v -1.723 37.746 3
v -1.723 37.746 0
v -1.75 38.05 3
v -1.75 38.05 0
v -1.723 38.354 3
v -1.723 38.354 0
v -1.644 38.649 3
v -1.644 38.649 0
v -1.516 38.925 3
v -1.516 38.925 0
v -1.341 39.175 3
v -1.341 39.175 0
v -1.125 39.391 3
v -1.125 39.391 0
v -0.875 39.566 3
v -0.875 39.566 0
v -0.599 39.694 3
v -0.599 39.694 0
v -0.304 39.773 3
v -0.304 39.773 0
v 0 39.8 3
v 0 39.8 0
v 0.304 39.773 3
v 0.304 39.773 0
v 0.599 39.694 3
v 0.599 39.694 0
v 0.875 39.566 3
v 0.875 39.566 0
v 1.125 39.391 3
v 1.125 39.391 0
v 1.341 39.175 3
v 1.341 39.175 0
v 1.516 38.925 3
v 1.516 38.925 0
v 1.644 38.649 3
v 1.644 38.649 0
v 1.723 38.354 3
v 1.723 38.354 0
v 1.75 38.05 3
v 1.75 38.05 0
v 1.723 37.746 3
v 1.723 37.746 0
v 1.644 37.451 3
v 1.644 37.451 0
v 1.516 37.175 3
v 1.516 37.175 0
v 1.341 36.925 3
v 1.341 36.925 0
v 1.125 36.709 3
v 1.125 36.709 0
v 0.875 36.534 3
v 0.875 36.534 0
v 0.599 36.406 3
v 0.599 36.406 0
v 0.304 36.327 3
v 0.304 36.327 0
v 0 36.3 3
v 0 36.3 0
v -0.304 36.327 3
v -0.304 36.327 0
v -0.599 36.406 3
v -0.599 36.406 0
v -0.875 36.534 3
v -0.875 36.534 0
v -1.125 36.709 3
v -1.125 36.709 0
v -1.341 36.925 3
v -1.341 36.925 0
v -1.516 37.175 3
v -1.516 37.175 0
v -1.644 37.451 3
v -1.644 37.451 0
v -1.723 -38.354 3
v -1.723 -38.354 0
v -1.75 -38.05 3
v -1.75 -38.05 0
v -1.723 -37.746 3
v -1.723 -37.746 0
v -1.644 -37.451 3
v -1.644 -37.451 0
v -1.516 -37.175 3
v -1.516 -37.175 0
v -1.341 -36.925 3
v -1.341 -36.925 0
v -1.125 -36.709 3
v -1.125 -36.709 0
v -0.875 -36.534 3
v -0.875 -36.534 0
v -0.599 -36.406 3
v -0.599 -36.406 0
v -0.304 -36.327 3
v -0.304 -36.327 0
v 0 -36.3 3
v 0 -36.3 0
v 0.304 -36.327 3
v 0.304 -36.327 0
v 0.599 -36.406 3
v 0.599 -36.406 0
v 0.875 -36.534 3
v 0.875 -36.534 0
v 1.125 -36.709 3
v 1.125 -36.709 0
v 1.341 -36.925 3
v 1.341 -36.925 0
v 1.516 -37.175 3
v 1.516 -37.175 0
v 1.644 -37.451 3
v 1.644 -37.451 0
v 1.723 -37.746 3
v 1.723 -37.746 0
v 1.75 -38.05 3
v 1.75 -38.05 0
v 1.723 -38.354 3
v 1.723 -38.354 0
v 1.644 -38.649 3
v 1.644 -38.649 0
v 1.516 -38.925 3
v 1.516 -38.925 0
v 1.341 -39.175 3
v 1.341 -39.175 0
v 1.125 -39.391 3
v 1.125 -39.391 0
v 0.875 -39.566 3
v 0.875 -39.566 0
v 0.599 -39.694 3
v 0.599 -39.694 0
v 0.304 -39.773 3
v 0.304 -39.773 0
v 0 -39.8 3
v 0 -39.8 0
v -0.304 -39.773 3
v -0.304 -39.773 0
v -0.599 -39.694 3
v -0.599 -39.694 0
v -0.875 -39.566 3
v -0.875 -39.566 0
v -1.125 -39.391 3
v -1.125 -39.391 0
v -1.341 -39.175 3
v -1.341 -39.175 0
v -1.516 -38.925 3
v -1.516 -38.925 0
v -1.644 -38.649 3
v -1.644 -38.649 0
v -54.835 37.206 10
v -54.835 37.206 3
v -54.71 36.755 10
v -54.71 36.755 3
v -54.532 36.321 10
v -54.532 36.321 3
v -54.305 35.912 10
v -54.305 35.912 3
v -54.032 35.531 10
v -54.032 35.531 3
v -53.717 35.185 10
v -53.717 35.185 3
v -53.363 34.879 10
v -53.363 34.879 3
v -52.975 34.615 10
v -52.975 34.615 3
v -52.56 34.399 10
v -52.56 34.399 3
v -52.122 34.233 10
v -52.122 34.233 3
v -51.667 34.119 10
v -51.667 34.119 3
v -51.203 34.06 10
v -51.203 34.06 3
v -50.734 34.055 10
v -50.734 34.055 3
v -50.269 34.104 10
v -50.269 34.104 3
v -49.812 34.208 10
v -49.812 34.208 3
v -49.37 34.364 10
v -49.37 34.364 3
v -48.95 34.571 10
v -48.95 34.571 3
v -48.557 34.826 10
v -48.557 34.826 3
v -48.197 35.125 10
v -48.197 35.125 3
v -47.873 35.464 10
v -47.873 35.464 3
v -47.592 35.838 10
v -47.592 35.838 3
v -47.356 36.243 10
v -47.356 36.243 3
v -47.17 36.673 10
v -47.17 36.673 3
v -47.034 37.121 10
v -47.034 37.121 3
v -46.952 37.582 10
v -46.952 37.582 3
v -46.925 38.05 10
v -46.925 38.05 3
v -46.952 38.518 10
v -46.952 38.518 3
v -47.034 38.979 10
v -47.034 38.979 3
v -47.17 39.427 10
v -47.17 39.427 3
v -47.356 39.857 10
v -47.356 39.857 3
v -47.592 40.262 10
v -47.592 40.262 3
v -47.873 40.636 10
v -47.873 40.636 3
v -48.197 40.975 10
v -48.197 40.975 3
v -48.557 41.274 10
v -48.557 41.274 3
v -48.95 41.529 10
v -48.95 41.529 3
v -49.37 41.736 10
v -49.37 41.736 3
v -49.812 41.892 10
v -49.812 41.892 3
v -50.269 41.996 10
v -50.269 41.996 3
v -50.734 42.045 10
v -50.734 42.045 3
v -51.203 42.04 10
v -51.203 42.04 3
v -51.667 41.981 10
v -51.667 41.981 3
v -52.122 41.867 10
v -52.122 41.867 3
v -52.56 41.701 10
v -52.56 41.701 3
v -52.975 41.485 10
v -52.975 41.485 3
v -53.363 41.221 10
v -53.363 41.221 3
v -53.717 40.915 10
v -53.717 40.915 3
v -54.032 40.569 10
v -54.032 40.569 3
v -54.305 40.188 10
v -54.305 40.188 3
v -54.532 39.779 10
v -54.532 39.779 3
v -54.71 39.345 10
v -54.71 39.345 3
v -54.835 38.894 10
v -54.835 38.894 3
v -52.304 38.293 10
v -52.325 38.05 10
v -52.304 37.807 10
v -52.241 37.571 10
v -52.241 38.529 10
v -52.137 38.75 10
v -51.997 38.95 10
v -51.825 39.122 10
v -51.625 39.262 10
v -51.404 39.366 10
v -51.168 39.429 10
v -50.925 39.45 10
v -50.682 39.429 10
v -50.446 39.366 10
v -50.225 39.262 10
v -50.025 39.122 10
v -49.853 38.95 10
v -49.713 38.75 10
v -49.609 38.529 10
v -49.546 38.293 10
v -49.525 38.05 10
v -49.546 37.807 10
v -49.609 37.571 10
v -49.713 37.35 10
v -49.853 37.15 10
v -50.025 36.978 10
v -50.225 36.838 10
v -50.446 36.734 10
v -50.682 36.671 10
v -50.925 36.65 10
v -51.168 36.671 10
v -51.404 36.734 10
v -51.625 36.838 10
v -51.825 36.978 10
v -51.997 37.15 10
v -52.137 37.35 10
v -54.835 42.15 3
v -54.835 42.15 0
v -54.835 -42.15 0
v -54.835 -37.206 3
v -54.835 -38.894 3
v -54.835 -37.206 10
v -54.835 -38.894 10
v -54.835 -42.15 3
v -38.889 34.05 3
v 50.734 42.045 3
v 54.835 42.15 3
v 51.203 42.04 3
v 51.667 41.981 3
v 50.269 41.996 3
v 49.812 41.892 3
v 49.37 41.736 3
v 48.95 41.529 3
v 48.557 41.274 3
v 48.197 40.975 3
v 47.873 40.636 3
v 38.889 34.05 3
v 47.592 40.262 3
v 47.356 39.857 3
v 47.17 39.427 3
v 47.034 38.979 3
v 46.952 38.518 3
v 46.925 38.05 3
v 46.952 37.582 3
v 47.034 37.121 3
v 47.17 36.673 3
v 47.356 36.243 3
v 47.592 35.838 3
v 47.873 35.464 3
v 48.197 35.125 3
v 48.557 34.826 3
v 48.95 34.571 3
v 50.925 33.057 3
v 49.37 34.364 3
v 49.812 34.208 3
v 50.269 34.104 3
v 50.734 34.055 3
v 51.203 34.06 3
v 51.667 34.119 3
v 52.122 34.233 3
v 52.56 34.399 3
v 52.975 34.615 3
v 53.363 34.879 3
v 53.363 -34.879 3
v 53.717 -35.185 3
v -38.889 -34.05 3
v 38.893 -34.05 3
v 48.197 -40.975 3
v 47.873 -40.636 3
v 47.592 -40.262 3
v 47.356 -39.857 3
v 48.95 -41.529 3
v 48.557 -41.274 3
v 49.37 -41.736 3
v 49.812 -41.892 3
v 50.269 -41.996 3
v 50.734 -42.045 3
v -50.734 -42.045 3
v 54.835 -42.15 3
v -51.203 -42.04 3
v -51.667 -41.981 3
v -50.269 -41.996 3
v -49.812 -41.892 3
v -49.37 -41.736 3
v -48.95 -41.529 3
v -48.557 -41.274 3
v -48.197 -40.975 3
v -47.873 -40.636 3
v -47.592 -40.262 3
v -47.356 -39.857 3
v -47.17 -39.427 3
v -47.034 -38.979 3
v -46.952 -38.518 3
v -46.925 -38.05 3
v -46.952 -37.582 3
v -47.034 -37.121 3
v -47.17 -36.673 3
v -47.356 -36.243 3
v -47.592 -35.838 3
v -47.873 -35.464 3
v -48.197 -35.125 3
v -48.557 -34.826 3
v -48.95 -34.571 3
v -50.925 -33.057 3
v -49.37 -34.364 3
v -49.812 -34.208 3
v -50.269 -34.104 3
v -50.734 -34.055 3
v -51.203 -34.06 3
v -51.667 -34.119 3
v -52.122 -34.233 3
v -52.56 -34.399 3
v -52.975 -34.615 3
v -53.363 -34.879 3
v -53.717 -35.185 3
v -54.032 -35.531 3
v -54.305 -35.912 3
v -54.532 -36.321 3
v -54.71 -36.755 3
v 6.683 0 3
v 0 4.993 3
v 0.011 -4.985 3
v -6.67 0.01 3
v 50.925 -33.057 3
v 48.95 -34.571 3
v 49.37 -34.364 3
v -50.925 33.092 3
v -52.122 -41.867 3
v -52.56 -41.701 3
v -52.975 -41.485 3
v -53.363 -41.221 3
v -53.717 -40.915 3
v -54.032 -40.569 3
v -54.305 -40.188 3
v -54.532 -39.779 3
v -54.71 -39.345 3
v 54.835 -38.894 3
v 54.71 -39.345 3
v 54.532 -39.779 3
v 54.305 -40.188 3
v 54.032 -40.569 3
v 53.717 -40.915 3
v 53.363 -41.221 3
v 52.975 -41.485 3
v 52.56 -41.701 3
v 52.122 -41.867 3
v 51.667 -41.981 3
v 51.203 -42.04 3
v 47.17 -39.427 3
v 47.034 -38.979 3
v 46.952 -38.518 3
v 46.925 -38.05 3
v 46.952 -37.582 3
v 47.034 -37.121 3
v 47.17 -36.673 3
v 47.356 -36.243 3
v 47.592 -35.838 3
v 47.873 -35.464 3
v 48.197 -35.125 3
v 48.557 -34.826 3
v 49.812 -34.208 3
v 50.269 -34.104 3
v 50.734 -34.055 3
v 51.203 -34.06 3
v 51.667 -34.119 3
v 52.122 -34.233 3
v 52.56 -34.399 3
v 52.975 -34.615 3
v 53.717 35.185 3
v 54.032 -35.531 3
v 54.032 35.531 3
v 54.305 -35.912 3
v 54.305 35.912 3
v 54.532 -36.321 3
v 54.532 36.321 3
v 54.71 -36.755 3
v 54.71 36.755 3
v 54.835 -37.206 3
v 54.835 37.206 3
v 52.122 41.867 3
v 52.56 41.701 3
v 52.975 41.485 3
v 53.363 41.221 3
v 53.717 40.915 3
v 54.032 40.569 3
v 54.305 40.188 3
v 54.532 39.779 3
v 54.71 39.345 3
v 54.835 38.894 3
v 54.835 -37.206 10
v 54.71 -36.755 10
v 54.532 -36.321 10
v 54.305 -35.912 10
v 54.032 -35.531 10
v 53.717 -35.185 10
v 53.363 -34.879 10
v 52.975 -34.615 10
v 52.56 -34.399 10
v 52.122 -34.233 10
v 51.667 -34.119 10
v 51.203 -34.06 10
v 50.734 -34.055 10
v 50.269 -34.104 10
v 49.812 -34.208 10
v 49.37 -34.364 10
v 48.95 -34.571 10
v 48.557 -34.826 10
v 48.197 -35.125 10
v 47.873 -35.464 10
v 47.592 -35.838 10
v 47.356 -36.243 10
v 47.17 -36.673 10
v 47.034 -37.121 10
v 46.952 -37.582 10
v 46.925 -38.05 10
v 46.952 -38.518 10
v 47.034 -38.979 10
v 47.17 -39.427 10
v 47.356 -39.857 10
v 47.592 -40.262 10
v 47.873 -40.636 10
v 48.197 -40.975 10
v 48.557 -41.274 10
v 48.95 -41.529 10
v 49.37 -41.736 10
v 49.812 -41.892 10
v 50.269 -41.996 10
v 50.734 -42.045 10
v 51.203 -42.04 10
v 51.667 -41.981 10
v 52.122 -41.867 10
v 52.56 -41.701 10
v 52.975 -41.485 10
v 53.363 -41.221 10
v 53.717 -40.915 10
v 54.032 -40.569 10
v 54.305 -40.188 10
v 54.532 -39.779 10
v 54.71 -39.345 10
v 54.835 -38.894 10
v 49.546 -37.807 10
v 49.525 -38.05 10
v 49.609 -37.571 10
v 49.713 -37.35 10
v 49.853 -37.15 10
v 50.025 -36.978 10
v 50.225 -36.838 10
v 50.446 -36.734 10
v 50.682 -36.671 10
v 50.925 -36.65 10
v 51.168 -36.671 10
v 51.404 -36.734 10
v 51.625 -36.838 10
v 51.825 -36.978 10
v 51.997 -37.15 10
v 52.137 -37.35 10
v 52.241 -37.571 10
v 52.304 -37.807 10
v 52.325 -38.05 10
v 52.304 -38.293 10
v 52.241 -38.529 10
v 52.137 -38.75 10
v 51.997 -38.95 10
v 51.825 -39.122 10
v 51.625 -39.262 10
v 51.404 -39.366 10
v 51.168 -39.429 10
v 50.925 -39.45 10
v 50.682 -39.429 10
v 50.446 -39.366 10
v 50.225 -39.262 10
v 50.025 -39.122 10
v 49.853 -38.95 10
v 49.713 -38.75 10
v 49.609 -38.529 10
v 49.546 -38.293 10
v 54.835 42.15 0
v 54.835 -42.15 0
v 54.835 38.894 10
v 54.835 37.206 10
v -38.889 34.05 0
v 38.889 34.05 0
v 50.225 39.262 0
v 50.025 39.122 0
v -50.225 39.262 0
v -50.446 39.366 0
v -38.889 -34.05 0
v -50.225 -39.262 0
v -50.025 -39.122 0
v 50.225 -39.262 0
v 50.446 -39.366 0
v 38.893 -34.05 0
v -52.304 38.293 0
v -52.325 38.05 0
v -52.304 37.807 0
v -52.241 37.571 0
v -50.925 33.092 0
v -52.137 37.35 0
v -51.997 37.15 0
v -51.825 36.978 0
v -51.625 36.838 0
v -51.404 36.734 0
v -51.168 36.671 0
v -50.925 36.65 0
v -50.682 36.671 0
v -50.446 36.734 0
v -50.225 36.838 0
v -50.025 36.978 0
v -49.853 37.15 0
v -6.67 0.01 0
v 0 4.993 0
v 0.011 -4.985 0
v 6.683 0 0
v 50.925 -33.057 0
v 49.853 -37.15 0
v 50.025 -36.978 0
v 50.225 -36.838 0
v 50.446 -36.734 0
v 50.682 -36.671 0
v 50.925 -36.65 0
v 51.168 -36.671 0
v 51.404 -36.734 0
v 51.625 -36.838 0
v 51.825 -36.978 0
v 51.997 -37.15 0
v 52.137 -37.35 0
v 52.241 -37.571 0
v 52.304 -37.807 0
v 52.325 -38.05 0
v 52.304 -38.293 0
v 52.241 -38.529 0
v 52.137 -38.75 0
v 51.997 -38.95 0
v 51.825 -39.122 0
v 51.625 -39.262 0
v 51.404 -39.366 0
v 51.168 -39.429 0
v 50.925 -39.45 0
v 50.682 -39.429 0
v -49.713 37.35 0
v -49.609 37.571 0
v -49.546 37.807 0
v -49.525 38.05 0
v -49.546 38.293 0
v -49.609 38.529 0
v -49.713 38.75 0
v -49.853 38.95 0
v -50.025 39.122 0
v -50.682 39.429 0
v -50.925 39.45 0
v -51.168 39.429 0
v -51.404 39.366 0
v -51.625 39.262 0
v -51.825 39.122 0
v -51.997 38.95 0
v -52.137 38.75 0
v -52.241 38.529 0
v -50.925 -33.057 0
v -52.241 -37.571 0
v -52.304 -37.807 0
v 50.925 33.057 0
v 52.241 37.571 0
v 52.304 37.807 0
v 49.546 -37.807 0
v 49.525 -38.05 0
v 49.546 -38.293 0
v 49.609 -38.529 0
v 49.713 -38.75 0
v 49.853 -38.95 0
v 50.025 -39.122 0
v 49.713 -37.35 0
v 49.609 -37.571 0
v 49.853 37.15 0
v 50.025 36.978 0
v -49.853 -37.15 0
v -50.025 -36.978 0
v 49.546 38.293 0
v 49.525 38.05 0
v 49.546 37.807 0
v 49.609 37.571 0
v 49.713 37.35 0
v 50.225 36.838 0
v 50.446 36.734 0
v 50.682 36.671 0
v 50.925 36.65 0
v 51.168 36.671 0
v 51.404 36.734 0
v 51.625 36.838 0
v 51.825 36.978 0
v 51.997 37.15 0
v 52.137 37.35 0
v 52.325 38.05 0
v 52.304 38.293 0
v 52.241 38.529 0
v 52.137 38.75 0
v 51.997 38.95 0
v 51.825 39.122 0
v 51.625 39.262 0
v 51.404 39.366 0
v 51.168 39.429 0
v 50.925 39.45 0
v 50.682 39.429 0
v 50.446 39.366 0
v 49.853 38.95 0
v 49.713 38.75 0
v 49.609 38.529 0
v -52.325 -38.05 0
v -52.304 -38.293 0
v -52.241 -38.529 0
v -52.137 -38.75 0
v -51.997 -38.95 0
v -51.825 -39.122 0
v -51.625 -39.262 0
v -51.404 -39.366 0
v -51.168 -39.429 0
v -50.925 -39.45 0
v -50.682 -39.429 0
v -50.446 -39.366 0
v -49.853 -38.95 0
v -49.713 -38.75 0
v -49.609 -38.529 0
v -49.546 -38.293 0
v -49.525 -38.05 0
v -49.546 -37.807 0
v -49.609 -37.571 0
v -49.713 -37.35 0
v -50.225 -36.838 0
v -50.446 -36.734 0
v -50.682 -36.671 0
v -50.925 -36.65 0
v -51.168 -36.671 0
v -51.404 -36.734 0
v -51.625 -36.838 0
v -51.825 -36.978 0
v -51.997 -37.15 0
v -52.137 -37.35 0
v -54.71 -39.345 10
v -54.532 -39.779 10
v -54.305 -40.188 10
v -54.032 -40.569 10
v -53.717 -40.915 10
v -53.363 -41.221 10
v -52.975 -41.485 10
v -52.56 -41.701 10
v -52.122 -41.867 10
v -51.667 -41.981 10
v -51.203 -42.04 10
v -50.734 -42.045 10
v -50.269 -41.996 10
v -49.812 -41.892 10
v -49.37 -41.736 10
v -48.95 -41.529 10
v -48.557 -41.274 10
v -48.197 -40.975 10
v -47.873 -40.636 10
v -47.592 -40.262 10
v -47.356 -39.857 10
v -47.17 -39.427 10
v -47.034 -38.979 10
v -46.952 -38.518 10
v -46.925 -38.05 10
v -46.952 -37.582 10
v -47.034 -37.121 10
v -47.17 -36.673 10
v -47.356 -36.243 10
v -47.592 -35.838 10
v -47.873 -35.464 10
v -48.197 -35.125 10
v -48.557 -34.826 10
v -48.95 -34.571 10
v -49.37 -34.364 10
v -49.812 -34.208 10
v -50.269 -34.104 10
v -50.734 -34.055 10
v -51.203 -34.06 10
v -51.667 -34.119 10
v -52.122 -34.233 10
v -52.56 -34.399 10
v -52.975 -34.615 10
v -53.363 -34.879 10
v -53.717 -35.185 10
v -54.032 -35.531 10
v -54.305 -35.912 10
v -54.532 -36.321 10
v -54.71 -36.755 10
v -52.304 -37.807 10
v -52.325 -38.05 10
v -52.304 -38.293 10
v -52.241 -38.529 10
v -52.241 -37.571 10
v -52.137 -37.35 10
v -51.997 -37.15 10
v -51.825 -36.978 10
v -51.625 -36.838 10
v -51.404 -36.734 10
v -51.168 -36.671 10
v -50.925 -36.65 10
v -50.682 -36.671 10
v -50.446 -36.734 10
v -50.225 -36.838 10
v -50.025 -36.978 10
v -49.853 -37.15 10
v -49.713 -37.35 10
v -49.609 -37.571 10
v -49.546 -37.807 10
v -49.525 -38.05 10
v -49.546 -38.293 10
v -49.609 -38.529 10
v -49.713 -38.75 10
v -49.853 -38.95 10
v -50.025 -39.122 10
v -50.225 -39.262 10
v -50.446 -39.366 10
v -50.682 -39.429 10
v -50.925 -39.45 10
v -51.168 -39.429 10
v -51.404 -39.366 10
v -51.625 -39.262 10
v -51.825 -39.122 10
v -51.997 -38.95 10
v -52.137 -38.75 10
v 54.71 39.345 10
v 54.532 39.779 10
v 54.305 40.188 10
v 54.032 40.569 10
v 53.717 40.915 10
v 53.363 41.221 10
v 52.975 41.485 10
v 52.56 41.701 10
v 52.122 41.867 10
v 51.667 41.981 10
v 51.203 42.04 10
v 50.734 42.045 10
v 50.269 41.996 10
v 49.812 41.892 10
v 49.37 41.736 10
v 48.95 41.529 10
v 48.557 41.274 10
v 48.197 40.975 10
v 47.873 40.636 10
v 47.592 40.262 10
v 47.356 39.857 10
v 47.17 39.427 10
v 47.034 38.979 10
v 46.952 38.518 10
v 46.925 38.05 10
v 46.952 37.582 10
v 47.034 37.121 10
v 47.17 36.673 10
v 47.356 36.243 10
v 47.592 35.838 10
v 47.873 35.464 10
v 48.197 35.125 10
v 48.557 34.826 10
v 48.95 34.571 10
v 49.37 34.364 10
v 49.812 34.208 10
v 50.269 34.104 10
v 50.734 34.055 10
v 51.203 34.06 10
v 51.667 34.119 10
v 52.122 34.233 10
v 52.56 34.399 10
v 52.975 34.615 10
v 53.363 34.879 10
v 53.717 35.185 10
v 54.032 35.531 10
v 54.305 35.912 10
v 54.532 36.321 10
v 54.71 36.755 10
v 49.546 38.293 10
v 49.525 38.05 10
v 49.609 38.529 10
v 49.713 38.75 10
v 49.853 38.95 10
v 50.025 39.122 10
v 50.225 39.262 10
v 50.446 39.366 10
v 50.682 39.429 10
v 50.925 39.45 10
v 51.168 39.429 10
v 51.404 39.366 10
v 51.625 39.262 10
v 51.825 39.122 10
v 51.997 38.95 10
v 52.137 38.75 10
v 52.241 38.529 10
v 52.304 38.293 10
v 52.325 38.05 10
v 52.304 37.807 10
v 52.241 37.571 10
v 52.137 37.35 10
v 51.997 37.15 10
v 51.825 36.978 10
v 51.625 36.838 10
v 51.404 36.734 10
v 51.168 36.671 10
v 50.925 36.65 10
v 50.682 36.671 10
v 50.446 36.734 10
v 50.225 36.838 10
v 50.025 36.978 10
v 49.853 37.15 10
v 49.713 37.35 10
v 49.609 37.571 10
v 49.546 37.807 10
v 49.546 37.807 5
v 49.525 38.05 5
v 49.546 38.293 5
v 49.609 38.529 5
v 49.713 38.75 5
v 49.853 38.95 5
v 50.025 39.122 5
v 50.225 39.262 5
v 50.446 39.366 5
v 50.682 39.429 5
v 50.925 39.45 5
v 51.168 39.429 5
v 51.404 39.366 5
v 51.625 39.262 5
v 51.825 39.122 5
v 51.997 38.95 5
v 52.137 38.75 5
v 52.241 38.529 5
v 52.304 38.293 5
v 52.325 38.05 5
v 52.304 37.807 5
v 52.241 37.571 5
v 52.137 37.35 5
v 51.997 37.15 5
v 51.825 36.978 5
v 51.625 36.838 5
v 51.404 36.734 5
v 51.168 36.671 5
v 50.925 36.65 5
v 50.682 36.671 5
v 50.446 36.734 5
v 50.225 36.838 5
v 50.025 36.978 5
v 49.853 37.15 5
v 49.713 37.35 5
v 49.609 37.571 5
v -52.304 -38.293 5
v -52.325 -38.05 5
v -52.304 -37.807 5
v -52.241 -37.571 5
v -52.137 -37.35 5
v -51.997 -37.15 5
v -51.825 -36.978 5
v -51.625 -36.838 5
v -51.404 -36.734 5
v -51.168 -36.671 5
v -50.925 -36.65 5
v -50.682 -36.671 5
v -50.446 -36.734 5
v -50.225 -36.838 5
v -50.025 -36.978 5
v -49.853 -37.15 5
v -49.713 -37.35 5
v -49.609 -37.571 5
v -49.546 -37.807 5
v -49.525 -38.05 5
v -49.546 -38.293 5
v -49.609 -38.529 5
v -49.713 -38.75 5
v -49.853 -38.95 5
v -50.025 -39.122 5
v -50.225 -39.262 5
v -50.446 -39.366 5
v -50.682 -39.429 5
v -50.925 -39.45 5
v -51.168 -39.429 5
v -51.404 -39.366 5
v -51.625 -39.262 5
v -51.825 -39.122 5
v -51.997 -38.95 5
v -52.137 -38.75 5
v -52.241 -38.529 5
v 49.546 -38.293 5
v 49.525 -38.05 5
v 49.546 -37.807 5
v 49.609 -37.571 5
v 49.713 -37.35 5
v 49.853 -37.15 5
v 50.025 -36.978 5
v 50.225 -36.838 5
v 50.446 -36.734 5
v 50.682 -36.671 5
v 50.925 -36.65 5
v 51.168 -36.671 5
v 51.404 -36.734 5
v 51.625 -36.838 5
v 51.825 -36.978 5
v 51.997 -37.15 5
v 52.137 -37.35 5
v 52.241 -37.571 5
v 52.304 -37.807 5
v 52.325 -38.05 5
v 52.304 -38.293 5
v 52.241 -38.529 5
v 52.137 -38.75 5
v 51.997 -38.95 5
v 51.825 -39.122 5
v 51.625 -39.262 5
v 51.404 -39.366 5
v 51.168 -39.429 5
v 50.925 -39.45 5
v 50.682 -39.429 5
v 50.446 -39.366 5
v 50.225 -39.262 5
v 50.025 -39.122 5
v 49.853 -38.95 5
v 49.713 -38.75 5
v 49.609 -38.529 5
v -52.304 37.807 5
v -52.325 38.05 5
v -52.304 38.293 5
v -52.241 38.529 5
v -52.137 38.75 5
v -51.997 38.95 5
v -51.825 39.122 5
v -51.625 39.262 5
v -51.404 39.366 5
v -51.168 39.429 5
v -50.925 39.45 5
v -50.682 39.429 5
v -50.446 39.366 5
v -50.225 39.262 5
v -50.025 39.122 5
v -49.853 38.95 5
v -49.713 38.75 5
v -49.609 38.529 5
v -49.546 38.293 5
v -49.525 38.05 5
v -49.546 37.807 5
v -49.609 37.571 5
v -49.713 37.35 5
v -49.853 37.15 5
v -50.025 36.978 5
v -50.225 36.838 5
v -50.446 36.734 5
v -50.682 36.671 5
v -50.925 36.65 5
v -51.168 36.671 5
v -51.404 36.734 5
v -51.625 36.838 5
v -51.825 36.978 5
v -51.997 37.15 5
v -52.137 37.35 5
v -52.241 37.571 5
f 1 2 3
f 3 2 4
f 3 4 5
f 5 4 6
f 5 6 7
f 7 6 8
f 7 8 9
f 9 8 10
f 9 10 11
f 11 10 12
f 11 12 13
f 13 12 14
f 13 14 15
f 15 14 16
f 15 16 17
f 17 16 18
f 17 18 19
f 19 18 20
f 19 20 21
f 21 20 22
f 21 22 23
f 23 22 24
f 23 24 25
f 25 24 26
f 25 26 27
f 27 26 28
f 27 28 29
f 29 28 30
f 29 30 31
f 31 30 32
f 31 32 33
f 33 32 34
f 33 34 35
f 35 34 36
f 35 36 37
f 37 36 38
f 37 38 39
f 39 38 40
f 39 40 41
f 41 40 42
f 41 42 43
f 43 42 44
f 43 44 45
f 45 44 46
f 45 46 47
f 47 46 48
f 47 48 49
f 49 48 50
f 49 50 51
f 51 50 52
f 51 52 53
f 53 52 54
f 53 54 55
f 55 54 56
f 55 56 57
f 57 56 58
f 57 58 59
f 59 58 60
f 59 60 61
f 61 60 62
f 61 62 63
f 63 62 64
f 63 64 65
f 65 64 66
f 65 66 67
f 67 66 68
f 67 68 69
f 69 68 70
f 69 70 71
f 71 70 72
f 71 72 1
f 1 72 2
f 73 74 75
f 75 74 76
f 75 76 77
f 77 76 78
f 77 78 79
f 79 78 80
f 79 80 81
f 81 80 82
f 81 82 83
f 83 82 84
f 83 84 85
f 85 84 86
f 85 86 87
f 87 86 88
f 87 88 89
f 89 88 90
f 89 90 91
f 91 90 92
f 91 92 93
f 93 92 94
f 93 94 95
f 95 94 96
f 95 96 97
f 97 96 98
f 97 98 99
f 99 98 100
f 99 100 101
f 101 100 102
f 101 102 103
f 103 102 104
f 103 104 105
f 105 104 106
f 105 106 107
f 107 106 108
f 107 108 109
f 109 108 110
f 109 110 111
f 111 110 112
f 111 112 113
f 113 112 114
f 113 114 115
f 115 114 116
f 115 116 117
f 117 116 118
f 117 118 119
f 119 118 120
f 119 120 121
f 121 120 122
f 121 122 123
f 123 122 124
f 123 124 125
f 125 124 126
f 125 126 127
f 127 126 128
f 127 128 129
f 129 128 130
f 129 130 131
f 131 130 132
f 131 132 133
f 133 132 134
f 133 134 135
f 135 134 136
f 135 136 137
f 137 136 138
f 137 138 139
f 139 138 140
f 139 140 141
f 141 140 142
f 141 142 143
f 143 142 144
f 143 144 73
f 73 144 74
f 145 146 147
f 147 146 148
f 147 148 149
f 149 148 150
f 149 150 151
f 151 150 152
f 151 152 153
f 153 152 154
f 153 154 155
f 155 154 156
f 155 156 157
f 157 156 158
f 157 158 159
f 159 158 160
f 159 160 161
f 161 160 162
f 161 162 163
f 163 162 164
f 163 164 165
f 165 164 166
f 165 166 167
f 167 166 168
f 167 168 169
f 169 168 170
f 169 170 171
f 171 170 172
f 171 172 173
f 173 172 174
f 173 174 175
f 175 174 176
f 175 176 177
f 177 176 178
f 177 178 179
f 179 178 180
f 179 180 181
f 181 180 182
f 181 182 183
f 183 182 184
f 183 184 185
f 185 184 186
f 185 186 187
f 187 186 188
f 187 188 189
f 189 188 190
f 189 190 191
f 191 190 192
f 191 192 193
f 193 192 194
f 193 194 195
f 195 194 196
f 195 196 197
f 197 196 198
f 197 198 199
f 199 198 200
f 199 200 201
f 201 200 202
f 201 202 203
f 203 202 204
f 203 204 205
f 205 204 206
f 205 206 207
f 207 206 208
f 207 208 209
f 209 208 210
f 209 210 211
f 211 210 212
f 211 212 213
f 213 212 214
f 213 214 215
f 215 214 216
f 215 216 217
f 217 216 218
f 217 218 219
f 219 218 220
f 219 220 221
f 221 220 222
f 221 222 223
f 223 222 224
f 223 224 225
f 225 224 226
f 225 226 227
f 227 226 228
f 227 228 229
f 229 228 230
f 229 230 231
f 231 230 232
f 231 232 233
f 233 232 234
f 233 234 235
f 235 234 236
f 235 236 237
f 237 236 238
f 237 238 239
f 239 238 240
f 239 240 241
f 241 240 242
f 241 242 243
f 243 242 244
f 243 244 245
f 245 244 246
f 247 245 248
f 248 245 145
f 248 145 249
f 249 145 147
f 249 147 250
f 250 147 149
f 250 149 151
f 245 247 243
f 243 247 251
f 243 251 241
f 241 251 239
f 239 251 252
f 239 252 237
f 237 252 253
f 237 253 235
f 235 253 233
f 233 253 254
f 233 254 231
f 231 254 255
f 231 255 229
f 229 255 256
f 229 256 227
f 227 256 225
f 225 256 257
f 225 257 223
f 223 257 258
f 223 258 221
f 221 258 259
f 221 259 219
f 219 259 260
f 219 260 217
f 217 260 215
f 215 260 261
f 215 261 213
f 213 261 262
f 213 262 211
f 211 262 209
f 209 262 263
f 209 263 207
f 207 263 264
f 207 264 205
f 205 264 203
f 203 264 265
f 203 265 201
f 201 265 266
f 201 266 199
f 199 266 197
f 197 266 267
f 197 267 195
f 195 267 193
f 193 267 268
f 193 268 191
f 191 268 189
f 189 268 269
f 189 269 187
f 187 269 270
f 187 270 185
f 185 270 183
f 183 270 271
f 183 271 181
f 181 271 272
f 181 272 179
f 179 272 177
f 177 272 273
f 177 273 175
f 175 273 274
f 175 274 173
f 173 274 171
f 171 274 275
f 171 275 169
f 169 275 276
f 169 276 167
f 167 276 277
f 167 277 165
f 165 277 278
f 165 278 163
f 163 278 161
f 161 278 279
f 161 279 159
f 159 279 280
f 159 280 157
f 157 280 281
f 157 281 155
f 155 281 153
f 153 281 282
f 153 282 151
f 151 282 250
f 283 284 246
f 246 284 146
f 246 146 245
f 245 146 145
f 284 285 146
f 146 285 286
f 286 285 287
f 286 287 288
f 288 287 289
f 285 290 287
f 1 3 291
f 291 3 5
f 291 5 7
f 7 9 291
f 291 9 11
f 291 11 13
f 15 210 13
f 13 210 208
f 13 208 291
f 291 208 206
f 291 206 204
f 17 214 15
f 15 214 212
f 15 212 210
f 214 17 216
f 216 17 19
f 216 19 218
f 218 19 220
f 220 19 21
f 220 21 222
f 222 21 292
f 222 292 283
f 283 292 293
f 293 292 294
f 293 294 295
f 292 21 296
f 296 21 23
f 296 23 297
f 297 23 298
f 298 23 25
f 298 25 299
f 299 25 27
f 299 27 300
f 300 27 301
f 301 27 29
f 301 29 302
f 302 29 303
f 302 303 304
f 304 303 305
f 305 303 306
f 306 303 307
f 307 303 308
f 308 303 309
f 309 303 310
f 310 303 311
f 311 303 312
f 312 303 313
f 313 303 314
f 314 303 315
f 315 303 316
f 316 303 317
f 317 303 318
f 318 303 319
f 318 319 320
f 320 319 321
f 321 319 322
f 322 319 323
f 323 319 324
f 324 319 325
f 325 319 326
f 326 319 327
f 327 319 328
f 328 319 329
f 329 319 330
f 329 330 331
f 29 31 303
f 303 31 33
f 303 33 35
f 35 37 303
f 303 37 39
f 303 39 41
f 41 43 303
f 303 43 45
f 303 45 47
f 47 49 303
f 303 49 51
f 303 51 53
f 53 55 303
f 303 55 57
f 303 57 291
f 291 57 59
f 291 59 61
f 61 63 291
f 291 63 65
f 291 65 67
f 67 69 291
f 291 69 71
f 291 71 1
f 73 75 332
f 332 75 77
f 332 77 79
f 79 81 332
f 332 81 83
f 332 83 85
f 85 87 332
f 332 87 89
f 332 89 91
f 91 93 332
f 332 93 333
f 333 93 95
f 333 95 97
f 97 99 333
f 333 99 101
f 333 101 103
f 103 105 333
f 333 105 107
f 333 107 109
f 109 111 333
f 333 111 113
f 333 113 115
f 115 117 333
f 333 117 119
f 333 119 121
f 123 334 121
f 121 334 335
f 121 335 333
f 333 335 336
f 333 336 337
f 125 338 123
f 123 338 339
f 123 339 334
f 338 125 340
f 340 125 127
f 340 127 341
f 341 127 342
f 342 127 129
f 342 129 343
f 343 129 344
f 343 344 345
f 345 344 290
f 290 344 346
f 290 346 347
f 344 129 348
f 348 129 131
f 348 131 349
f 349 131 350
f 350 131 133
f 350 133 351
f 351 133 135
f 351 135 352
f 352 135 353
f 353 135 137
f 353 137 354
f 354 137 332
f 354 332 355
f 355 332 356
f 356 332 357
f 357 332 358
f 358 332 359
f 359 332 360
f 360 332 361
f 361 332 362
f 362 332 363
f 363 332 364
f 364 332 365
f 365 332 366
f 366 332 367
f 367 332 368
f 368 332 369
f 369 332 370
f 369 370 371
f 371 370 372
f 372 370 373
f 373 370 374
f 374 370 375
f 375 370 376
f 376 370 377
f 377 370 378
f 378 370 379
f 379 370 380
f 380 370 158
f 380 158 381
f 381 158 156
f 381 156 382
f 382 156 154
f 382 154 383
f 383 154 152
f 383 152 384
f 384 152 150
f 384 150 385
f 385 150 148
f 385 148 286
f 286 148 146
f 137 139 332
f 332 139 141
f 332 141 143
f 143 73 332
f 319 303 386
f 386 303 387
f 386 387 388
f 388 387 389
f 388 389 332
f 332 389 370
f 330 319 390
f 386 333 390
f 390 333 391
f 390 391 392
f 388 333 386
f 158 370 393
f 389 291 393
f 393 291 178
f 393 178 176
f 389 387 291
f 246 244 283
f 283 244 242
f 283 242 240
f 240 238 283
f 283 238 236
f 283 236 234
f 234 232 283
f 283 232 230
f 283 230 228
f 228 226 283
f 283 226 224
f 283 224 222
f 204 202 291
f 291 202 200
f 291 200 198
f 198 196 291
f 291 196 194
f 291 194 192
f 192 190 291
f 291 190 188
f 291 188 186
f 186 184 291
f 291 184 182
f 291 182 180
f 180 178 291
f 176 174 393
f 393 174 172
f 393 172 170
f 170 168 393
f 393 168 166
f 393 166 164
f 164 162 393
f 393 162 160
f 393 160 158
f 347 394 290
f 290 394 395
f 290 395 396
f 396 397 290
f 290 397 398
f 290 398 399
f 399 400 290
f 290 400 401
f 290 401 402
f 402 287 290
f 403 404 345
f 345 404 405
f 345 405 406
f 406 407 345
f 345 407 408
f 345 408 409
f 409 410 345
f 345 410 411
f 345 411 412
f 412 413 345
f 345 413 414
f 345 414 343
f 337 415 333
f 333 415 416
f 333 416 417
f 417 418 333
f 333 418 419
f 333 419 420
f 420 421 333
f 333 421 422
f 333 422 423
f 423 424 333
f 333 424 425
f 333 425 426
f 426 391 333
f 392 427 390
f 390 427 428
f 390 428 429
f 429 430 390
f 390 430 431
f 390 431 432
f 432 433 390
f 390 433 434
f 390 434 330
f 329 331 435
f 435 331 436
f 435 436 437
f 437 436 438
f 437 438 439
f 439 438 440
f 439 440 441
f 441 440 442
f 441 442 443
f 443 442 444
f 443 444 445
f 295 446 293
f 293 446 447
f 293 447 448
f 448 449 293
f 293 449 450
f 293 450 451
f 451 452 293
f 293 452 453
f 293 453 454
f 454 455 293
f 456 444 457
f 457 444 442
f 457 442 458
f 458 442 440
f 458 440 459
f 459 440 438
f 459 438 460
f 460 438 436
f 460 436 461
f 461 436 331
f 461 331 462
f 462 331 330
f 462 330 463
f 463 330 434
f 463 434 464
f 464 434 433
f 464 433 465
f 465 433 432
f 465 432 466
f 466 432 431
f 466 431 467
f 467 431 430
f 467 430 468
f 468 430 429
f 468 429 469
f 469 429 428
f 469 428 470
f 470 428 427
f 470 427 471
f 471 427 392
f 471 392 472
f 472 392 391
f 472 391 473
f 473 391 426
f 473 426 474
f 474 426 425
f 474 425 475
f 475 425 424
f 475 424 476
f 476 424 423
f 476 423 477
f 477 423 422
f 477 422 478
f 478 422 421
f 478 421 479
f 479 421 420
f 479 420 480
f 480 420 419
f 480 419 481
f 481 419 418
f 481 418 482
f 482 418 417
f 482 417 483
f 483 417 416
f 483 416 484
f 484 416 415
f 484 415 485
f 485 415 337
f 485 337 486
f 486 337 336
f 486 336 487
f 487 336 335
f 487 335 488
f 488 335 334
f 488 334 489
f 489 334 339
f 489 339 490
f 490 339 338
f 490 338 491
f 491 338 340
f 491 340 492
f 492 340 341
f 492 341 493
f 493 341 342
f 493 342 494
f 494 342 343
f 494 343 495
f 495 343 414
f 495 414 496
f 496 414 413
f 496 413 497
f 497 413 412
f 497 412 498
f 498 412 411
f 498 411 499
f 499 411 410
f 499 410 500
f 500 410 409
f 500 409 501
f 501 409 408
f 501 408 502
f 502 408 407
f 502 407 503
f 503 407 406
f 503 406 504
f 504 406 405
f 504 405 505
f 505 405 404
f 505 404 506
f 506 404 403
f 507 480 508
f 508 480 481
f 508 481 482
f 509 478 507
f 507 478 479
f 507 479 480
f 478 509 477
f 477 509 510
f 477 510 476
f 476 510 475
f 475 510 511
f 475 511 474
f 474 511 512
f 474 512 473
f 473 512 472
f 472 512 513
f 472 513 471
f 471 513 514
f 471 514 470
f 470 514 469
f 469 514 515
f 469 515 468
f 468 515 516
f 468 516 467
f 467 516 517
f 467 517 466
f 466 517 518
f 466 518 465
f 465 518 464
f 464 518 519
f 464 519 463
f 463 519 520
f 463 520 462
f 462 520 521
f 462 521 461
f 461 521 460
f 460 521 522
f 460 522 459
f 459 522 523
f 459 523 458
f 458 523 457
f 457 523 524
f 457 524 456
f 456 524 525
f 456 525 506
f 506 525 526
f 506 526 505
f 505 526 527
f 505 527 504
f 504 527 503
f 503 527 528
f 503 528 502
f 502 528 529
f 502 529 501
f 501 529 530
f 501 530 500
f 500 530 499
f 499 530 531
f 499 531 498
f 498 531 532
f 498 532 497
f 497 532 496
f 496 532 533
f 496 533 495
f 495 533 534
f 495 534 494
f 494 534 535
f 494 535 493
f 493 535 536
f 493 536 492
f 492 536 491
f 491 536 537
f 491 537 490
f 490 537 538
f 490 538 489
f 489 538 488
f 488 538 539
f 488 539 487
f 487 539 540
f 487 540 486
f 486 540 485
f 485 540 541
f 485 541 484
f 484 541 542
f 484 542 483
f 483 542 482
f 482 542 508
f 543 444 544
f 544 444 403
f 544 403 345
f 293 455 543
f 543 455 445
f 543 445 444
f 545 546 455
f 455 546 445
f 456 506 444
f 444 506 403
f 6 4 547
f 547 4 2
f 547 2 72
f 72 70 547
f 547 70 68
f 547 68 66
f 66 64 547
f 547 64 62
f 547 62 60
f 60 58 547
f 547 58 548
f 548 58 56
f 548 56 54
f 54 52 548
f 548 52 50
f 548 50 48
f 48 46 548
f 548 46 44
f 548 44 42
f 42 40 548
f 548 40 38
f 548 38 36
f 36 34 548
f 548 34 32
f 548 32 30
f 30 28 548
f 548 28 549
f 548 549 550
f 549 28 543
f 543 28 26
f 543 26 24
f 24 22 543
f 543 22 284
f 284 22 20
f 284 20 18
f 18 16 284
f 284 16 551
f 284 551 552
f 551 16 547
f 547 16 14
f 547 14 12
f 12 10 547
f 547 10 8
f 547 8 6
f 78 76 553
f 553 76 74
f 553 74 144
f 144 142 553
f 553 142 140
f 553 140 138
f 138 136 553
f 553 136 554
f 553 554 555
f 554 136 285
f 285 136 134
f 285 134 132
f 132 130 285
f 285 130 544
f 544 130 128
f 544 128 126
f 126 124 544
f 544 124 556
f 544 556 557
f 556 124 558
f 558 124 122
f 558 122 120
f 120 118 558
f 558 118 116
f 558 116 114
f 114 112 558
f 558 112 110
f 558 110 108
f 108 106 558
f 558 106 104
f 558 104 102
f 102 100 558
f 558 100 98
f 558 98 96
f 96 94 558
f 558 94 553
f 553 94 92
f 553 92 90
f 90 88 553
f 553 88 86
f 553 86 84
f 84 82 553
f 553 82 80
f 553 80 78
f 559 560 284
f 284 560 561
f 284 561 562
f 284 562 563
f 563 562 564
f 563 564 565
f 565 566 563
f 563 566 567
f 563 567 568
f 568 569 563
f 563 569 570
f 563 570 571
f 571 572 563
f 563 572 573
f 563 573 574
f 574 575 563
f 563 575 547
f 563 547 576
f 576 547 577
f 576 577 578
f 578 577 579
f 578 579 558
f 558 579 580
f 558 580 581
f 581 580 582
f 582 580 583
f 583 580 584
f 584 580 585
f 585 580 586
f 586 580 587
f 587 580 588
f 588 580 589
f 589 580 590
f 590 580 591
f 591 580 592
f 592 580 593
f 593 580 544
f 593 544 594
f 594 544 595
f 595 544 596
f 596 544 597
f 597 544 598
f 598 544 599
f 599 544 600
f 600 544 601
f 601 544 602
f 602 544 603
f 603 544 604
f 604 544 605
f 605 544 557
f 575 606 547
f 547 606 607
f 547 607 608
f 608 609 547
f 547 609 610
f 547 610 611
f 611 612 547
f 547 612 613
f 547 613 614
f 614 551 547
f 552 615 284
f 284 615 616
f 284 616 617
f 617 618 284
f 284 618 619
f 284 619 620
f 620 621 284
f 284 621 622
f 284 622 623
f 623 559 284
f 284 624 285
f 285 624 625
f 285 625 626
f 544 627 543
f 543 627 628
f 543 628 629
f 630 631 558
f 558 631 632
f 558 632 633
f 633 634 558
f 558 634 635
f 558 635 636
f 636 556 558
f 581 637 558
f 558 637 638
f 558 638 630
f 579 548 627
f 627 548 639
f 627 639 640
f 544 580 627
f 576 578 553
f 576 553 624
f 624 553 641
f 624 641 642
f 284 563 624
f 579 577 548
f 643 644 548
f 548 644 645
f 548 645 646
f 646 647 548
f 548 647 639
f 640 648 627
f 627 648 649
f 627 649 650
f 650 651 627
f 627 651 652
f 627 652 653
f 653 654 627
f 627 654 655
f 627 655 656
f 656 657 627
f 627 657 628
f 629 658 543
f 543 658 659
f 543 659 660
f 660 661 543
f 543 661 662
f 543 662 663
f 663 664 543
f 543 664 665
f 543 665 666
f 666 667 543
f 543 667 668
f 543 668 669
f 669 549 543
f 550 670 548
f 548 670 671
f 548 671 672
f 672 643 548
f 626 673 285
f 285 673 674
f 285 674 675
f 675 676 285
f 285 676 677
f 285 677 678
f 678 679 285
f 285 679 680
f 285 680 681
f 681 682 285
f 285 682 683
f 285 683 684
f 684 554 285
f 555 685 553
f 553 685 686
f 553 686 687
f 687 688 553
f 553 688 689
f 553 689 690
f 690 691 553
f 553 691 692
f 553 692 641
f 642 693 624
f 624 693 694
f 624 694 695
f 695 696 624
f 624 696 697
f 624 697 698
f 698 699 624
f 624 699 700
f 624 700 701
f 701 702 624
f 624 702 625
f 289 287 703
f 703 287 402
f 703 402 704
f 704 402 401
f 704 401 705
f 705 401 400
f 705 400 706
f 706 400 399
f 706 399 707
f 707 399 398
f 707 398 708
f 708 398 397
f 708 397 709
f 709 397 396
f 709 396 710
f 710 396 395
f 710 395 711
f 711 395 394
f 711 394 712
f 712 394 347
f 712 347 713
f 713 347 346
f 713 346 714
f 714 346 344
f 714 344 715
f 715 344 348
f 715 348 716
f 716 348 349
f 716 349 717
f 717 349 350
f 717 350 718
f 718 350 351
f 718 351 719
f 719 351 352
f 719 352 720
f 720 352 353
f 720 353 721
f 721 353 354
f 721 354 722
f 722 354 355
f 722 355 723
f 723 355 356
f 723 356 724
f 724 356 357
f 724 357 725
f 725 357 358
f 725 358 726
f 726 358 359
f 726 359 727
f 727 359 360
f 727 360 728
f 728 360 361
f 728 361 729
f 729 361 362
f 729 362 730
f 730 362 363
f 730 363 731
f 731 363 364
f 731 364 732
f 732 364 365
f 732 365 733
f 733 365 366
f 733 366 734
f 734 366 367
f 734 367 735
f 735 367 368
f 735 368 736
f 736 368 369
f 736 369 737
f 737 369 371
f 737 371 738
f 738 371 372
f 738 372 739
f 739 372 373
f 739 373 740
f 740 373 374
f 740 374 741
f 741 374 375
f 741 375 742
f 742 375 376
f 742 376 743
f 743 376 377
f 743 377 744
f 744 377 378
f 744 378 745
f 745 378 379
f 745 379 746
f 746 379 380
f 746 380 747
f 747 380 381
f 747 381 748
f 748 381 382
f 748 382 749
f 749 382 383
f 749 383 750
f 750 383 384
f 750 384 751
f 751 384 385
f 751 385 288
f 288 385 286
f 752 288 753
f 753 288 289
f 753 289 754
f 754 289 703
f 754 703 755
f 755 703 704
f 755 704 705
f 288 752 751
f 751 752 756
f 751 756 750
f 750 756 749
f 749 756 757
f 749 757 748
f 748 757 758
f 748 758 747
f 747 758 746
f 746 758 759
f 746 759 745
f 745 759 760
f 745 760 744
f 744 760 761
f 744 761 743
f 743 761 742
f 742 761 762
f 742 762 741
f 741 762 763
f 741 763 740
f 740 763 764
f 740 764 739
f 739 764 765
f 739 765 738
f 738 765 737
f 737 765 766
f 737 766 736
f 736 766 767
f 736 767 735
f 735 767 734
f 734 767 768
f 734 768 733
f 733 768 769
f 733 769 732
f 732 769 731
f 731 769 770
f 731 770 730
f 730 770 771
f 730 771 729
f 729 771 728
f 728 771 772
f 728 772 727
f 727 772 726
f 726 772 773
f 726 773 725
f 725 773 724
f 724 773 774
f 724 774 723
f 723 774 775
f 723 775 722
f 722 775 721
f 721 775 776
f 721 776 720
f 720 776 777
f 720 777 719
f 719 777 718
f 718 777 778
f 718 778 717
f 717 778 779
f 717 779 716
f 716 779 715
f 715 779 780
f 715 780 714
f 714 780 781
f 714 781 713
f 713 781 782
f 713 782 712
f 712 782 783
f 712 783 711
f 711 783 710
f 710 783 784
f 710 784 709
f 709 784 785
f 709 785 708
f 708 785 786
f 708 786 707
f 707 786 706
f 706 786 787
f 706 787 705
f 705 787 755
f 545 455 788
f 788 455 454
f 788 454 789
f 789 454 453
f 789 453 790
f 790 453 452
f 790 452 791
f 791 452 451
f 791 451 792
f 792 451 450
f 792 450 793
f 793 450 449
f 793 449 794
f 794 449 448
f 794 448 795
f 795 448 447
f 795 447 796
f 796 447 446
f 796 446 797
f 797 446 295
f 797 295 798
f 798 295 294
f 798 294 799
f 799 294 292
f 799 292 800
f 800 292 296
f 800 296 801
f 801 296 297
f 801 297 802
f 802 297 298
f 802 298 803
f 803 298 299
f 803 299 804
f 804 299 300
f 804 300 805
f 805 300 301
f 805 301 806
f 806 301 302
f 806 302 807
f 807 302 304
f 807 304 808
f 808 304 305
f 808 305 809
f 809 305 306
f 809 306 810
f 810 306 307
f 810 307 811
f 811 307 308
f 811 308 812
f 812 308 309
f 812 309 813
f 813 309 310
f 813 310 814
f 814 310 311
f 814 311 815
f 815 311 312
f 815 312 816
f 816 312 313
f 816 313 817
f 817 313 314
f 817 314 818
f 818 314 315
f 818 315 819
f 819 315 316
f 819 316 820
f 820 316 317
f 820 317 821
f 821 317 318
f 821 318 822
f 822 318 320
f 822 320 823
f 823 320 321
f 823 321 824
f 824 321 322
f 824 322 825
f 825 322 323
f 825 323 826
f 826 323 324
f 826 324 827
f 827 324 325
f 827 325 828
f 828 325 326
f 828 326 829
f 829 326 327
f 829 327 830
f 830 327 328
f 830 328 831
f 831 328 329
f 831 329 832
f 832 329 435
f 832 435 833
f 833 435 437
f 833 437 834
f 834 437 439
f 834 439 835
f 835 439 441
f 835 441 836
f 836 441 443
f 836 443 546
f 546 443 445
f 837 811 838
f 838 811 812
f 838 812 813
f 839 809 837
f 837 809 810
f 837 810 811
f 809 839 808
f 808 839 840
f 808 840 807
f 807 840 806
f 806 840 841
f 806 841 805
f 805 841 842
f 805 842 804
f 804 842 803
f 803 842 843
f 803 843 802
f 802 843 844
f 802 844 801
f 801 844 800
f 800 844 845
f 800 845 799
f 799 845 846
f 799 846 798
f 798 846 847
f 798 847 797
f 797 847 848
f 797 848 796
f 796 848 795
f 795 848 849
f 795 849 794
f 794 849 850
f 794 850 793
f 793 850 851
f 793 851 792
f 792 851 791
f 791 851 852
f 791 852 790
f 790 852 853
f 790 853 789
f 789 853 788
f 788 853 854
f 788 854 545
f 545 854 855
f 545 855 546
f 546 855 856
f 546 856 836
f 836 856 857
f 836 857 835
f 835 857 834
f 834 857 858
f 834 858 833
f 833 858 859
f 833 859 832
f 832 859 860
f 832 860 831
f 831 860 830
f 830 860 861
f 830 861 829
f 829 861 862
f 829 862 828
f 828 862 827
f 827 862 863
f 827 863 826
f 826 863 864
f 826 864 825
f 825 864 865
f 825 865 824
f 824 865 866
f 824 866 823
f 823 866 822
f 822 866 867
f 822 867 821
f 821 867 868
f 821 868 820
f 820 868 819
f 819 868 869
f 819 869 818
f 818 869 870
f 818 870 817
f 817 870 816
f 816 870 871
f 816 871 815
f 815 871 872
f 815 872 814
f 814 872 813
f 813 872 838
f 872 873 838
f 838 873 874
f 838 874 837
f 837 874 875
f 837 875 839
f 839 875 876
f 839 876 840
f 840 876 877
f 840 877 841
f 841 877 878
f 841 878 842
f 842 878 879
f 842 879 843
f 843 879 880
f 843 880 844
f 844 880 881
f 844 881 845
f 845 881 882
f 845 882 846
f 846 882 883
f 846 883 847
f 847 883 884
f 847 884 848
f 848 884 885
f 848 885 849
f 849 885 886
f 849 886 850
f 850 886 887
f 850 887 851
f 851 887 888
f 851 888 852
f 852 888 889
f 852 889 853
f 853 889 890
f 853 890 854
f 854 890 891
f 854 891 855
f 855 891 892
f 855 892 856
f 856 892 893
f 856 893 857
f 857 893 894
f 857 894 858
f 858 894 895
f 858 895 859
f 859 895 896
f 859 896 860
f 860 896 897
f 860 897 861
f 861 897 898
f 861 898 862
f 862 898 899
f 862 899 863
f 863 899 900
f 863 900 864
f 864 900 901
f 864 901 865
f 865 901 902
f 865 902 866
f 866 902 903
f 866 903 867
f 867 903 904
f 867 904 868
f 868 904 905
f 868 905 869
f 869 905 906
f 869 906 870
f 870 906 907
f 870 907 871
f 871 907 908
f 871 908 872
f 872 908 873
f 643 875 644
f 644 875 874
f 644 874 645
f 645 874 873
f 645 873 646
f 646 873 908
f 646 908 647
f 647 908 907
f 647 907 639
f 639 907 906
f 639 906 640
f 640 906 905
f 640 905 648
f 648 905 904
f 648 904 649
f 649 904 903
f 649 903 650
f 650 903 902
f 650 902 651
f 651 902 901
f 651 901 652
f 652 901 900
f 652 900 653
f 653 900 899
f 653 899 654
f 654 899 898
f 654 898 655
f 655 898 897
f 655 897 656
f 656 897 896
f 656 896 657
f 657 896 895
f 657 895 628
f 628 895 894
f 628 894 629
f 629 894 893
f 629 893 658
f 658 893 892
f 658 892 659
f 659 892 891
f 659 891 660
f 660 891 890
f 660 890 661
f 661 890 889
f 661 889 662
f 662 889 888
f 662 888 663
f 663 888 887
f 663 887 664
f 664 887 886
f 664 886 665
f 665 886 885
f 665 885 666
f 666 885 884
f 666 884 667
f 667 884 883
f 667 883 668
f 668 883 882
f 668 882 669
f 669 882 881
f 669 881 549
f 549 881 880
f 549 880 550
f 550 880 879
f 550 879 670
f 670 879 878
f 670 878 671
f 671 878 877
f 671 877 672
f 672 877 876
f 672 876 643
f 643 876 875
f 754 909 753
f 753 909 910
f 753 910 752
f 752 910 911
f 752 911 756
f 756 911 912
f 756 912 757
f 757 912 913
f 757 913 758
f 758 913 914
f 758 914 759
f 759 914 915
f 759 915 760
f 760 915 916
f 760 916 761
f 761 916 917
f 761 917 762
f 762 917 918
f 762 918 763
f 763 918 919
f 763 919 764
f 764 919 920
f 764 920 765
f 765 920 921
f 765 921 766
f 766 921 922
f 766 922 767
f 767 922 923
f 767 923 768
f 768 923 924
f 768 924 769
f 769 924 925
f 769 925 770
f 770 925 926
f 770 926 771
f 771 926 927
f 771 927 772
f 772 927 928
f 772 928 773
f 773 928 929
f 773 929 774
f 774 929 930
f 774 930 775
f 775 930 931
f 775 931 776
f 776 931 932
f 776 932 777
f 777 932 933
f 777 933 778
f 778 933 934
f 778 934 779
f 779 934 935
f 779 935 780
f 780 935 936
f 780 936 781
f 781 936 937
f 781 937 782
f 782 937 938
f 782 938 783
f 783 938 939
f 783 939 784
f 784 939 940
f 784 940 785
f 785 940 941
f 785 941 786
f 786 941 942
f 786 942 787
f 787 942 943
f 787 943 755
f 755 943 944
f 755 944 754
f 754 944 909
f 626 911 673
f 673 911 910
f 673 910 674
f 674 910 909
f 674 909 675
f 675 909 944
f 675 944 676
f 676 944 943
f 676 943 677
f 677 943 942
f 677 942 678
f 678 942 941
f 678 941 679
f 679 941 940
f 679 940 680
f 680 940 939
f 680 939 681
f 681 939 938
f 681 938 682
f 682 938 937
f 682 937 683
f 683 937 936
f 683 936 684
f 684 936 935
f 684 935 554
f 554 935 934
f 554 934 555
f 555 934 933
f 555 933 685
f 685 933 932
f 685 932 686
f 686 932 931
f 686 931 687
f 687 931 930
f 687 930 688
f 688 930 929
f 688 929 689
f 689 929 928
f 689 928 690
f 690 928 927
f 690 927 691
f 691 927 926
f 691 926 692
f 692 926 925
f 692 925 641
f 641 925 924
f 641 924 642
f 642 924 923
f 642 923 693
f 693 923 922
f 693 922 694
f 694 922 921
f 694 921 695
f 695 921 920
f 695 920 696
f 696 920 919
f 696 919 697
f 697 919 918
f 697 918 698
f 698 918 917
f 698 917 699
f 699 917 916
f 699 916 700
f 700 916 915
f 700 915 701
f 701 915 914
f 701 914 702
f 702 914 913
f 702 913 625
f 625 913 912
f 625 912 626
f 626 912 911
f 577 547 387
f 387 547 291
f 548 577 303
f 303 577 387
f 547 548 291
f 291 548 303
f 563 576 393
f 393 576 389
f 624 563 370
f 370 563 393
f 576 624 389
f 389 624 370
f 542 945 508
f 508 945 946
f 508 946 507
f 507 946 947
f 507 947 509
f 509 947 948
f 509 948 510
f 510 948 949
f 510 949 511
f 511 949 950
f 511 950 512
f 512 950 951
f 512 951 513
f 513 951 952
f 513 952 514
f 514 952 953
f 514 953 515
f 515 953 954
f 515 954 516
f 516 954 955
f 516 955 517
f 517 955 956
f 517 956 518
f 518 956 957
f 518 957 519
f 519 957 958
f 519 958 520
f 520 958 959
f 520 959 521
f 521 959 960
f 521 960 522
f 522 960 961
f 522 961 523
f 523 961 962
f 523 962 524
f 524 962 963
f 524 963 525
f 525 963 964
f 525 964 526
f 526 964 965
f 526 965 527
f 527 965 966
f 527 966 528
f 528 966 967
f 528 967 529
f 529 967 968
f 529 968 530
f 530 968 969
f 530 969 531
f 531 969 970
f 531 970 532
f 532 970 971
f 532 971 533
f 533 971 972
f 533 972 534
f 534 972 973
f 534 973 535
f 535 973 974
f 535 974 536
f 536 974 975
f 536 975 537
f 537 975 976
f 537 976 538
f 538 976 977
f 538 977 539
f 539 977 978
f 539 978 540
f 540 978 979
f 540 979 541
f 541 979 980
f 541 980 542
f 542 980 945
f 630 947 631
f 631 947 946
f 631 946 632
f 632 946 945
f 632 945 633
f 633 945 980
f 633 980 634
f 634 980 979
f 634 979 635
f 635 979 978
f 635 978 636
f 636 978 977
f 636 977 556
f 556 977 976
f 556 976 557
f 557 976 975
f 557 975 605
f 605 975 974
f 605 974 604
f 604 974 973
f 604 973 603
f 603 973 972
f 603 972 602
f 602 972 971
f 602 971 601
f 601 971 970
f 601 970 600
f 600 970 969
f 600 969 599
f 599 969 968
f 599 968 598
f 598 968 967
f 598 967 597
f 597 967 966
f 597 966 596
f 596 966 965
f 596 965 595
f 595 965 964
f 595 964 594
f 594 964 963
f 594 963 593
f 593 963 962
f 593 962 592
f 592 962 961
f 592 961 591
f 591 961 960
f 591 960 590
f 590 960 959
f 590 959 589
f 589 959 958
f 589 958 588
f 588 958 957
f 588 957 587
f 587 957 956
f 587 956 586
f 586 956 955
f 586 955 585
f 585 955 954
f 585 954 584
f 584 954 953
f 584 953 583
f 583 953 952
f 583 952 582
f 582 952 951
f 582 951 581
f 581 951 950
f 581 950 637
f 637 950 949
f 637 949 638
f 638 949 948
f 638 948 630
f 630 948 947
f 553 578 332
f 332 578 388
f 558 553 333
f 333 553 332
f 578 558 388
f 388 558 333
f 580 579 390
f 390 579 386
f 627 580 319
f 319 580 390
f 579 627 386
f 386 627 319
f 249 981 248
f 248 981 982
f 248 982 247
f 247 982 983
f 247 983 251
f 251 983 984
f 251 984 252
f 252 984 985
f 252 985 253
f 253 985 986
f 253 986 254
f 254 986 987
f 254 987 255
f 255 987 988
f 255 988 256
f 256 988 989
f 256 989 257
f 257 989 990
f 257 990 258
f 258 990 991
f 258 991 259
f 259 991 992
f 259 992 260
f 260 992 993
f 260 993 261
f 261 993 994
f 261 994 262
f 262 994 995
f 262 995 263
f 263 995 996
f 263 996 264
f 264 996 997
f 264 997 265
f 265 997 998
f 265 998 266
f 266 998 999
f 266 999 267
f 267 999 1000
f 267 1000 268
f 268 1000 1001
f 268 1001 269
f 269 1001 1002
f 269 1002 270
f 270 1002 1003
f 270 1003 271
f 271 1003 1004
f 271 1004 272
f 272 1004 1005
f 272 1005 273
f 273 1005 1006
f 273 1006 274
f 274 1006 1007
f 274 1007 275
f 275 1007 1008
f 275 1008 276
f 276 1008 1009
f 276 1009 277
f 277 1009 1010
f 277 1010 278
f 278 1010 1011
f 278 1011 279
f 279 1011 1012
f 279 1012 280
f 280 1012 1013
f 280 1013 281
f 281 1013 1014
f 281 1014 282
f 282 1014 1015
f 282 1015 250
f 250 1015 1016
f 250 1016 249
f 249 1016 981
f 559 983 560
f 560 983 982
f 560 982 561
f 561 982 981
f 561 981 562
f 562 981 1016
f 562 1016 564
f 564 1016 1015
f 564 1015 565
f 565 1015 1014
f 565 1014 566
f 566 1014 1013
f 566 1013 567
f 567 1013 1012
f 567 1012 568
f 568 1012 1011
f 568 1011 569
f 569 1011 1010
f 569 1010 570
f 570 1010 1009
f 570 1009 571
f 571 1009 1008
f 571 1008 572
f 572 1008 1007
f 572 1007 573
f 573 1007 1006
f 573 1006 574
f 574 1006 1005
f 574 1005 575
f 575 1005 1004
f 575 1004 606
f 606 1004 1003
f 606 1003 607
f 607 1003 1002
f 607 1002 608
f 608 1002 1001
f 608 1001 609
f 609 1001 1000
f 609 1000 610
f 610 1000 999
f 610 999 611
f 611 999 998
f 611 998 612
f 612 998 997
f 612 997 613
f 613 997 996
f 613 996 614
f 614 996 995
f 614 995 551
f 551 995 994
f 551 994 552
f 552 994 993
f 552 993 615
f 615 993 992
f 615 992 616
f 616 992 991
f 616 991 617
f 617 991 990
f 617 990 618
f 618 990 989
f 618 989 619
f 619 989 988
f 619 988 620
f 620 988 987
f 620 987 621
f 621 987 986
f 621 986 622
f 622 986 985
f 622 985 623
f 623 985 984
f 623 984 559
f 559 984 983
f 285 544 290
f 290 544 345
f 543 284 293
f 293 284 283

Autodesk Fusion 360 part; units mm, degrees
sketch "Sketch1" plane through (0, 0, 0) normal (0, 0, 1) x (1, 0, 0)
  line L0 (50.925, -38.05) -> (-50.925, -38.05) construction
  line L1 (-50.925, -38.05) -> (-50.925, 38.05) construction
  line L2 (-50.925, 38.05) -> (50.925, 38.05) construction
  line L3 (50.925, 38.05) -> (50.925, -38.05) construction
  line L4 (50.925, -38.05) -> (-50.925, 38.05) construction
  line L5 (-50.925, -38.05) -> (50.925, 38.05) construction
  circle A0 centre (-50.925, 38.05) radius 1.4
  circle A1 centre (50.925, 38.05) radius 1.4
  circle A2 centre (-50.925, -38.05) radius 1.4
  circle A3 centre (50.925, -38.05) radius 1.4
  line L6 (54.835, -42.15) -> (-54.835, -42.15)
  line L7 (-54.835, -42.15) -> (-54.835, 42.15)
  line L8 (-54.835, 42.15) -> (54.835, 42.15)
  line L9 (54.835, 42.15) -> (54.835, -42.15)
  line L10 (54.835, -42.15) -> (-54.835, 42.15) construction
  line L11 (-54.835, -42.15) -> (54.835, 42.15) construction
  circle A4 centre (-50.925, 38.05) radius 4
  circle A5 centre (-50.925, -38.05) radius 4
  circle A6 centre (50.925, -38.05) radius 4
  circle A7 centre (50.925, 38.05) radius 4
  line L12 (-50.925, 34.05) -> (50.925, 34.05)
  line L13 (50.925, 34.05) -> (50.925, -34.05)
  line L14 (50.925, -34.05) -> (-50.925, -34.05)
  line L15 (-50.925, -34.05) -> (-50.925, 34.05)
  line L16 (-50.925, 34.05) -> (50.925, -34.05) construction
  line L17 (50.925, 34.05) -> (-50.925, -34.05) construction
  line L18 (53.3192, 34.8457) -> (-48.5308, -41.2543)
  line L19 (48.5308, 41.2543) -> (-53.3192, -34.8457)
  line L20 (53.3192, -34.8457) -> (-48.5308, 41.2543)
  line L21 (-53.6868, 35.1565) -> (48.5301, -41.2538)
  circle A8 centre (0, 38.05) radius 1.75
  circle A9 centre (0, -38.05) radius 1.75
  dimension "d1" = 76.1
  dimension "d2" = 101.85
  dimension "d3" = 2.8
  dimension "d4" = 2.8
  dimension "d5" = 2.8
  dimension "d6" = 2.8
  dimension "d7" = 109.67
  dimension "d8" = 84.3
  dimension "d9" = 8
  dimension "d10" = 8
  dimension "d11" = 8
  dimension "d12" = 8
  dimension "d17" = 3.5
  dimension "d18" = 3.5
extrude "Extrude1" add sketch "Sketch1" along normal blind 3 contours L6 L7 L9 A5 A6 L14 L18 L21 | L9 A6 | L7 A5 | L9 A6 A7 L13 L18 L20 | A6 L14 L21 | L7 A4 A5 L15 L19 L21 | A5 L14 L18 | L9 A7 | A6 L13 L20 | L13 L14 L18 L20 L21 | L7 A4 L21 | A5 L15 L19 | L14 L15 L18 L19 L21 | L7 L8 L9 A4 A7 L12 L19 L20 | A7 L13 L18 | L18 L19 L20 L21 | A4 L21 | A7 L12 L19 | L12 L13 L18 L19 L20 | L12 L15 L19 L20 L21 | A4 L12 L20 | A4 L15 L21 | A8 | A9 picked at (53.9983, -38.05) picked at (-53.9983, -38.05) picked at (53.9983, 38.05)
extrude "Extrude2" add sketch "Sketch1" along normal blind 10 contours L9 A6 | L7 A5 | L9 A7 | L7 A4 L21 | A4 L21 picked at (53.9983, -38.05) picked at (-53.9983, -38.05) picked at (53.9983, 38.05)
extrude "Extrude3" cut sketch "Sketch1" along normal blind 7 contours A8 | A9
